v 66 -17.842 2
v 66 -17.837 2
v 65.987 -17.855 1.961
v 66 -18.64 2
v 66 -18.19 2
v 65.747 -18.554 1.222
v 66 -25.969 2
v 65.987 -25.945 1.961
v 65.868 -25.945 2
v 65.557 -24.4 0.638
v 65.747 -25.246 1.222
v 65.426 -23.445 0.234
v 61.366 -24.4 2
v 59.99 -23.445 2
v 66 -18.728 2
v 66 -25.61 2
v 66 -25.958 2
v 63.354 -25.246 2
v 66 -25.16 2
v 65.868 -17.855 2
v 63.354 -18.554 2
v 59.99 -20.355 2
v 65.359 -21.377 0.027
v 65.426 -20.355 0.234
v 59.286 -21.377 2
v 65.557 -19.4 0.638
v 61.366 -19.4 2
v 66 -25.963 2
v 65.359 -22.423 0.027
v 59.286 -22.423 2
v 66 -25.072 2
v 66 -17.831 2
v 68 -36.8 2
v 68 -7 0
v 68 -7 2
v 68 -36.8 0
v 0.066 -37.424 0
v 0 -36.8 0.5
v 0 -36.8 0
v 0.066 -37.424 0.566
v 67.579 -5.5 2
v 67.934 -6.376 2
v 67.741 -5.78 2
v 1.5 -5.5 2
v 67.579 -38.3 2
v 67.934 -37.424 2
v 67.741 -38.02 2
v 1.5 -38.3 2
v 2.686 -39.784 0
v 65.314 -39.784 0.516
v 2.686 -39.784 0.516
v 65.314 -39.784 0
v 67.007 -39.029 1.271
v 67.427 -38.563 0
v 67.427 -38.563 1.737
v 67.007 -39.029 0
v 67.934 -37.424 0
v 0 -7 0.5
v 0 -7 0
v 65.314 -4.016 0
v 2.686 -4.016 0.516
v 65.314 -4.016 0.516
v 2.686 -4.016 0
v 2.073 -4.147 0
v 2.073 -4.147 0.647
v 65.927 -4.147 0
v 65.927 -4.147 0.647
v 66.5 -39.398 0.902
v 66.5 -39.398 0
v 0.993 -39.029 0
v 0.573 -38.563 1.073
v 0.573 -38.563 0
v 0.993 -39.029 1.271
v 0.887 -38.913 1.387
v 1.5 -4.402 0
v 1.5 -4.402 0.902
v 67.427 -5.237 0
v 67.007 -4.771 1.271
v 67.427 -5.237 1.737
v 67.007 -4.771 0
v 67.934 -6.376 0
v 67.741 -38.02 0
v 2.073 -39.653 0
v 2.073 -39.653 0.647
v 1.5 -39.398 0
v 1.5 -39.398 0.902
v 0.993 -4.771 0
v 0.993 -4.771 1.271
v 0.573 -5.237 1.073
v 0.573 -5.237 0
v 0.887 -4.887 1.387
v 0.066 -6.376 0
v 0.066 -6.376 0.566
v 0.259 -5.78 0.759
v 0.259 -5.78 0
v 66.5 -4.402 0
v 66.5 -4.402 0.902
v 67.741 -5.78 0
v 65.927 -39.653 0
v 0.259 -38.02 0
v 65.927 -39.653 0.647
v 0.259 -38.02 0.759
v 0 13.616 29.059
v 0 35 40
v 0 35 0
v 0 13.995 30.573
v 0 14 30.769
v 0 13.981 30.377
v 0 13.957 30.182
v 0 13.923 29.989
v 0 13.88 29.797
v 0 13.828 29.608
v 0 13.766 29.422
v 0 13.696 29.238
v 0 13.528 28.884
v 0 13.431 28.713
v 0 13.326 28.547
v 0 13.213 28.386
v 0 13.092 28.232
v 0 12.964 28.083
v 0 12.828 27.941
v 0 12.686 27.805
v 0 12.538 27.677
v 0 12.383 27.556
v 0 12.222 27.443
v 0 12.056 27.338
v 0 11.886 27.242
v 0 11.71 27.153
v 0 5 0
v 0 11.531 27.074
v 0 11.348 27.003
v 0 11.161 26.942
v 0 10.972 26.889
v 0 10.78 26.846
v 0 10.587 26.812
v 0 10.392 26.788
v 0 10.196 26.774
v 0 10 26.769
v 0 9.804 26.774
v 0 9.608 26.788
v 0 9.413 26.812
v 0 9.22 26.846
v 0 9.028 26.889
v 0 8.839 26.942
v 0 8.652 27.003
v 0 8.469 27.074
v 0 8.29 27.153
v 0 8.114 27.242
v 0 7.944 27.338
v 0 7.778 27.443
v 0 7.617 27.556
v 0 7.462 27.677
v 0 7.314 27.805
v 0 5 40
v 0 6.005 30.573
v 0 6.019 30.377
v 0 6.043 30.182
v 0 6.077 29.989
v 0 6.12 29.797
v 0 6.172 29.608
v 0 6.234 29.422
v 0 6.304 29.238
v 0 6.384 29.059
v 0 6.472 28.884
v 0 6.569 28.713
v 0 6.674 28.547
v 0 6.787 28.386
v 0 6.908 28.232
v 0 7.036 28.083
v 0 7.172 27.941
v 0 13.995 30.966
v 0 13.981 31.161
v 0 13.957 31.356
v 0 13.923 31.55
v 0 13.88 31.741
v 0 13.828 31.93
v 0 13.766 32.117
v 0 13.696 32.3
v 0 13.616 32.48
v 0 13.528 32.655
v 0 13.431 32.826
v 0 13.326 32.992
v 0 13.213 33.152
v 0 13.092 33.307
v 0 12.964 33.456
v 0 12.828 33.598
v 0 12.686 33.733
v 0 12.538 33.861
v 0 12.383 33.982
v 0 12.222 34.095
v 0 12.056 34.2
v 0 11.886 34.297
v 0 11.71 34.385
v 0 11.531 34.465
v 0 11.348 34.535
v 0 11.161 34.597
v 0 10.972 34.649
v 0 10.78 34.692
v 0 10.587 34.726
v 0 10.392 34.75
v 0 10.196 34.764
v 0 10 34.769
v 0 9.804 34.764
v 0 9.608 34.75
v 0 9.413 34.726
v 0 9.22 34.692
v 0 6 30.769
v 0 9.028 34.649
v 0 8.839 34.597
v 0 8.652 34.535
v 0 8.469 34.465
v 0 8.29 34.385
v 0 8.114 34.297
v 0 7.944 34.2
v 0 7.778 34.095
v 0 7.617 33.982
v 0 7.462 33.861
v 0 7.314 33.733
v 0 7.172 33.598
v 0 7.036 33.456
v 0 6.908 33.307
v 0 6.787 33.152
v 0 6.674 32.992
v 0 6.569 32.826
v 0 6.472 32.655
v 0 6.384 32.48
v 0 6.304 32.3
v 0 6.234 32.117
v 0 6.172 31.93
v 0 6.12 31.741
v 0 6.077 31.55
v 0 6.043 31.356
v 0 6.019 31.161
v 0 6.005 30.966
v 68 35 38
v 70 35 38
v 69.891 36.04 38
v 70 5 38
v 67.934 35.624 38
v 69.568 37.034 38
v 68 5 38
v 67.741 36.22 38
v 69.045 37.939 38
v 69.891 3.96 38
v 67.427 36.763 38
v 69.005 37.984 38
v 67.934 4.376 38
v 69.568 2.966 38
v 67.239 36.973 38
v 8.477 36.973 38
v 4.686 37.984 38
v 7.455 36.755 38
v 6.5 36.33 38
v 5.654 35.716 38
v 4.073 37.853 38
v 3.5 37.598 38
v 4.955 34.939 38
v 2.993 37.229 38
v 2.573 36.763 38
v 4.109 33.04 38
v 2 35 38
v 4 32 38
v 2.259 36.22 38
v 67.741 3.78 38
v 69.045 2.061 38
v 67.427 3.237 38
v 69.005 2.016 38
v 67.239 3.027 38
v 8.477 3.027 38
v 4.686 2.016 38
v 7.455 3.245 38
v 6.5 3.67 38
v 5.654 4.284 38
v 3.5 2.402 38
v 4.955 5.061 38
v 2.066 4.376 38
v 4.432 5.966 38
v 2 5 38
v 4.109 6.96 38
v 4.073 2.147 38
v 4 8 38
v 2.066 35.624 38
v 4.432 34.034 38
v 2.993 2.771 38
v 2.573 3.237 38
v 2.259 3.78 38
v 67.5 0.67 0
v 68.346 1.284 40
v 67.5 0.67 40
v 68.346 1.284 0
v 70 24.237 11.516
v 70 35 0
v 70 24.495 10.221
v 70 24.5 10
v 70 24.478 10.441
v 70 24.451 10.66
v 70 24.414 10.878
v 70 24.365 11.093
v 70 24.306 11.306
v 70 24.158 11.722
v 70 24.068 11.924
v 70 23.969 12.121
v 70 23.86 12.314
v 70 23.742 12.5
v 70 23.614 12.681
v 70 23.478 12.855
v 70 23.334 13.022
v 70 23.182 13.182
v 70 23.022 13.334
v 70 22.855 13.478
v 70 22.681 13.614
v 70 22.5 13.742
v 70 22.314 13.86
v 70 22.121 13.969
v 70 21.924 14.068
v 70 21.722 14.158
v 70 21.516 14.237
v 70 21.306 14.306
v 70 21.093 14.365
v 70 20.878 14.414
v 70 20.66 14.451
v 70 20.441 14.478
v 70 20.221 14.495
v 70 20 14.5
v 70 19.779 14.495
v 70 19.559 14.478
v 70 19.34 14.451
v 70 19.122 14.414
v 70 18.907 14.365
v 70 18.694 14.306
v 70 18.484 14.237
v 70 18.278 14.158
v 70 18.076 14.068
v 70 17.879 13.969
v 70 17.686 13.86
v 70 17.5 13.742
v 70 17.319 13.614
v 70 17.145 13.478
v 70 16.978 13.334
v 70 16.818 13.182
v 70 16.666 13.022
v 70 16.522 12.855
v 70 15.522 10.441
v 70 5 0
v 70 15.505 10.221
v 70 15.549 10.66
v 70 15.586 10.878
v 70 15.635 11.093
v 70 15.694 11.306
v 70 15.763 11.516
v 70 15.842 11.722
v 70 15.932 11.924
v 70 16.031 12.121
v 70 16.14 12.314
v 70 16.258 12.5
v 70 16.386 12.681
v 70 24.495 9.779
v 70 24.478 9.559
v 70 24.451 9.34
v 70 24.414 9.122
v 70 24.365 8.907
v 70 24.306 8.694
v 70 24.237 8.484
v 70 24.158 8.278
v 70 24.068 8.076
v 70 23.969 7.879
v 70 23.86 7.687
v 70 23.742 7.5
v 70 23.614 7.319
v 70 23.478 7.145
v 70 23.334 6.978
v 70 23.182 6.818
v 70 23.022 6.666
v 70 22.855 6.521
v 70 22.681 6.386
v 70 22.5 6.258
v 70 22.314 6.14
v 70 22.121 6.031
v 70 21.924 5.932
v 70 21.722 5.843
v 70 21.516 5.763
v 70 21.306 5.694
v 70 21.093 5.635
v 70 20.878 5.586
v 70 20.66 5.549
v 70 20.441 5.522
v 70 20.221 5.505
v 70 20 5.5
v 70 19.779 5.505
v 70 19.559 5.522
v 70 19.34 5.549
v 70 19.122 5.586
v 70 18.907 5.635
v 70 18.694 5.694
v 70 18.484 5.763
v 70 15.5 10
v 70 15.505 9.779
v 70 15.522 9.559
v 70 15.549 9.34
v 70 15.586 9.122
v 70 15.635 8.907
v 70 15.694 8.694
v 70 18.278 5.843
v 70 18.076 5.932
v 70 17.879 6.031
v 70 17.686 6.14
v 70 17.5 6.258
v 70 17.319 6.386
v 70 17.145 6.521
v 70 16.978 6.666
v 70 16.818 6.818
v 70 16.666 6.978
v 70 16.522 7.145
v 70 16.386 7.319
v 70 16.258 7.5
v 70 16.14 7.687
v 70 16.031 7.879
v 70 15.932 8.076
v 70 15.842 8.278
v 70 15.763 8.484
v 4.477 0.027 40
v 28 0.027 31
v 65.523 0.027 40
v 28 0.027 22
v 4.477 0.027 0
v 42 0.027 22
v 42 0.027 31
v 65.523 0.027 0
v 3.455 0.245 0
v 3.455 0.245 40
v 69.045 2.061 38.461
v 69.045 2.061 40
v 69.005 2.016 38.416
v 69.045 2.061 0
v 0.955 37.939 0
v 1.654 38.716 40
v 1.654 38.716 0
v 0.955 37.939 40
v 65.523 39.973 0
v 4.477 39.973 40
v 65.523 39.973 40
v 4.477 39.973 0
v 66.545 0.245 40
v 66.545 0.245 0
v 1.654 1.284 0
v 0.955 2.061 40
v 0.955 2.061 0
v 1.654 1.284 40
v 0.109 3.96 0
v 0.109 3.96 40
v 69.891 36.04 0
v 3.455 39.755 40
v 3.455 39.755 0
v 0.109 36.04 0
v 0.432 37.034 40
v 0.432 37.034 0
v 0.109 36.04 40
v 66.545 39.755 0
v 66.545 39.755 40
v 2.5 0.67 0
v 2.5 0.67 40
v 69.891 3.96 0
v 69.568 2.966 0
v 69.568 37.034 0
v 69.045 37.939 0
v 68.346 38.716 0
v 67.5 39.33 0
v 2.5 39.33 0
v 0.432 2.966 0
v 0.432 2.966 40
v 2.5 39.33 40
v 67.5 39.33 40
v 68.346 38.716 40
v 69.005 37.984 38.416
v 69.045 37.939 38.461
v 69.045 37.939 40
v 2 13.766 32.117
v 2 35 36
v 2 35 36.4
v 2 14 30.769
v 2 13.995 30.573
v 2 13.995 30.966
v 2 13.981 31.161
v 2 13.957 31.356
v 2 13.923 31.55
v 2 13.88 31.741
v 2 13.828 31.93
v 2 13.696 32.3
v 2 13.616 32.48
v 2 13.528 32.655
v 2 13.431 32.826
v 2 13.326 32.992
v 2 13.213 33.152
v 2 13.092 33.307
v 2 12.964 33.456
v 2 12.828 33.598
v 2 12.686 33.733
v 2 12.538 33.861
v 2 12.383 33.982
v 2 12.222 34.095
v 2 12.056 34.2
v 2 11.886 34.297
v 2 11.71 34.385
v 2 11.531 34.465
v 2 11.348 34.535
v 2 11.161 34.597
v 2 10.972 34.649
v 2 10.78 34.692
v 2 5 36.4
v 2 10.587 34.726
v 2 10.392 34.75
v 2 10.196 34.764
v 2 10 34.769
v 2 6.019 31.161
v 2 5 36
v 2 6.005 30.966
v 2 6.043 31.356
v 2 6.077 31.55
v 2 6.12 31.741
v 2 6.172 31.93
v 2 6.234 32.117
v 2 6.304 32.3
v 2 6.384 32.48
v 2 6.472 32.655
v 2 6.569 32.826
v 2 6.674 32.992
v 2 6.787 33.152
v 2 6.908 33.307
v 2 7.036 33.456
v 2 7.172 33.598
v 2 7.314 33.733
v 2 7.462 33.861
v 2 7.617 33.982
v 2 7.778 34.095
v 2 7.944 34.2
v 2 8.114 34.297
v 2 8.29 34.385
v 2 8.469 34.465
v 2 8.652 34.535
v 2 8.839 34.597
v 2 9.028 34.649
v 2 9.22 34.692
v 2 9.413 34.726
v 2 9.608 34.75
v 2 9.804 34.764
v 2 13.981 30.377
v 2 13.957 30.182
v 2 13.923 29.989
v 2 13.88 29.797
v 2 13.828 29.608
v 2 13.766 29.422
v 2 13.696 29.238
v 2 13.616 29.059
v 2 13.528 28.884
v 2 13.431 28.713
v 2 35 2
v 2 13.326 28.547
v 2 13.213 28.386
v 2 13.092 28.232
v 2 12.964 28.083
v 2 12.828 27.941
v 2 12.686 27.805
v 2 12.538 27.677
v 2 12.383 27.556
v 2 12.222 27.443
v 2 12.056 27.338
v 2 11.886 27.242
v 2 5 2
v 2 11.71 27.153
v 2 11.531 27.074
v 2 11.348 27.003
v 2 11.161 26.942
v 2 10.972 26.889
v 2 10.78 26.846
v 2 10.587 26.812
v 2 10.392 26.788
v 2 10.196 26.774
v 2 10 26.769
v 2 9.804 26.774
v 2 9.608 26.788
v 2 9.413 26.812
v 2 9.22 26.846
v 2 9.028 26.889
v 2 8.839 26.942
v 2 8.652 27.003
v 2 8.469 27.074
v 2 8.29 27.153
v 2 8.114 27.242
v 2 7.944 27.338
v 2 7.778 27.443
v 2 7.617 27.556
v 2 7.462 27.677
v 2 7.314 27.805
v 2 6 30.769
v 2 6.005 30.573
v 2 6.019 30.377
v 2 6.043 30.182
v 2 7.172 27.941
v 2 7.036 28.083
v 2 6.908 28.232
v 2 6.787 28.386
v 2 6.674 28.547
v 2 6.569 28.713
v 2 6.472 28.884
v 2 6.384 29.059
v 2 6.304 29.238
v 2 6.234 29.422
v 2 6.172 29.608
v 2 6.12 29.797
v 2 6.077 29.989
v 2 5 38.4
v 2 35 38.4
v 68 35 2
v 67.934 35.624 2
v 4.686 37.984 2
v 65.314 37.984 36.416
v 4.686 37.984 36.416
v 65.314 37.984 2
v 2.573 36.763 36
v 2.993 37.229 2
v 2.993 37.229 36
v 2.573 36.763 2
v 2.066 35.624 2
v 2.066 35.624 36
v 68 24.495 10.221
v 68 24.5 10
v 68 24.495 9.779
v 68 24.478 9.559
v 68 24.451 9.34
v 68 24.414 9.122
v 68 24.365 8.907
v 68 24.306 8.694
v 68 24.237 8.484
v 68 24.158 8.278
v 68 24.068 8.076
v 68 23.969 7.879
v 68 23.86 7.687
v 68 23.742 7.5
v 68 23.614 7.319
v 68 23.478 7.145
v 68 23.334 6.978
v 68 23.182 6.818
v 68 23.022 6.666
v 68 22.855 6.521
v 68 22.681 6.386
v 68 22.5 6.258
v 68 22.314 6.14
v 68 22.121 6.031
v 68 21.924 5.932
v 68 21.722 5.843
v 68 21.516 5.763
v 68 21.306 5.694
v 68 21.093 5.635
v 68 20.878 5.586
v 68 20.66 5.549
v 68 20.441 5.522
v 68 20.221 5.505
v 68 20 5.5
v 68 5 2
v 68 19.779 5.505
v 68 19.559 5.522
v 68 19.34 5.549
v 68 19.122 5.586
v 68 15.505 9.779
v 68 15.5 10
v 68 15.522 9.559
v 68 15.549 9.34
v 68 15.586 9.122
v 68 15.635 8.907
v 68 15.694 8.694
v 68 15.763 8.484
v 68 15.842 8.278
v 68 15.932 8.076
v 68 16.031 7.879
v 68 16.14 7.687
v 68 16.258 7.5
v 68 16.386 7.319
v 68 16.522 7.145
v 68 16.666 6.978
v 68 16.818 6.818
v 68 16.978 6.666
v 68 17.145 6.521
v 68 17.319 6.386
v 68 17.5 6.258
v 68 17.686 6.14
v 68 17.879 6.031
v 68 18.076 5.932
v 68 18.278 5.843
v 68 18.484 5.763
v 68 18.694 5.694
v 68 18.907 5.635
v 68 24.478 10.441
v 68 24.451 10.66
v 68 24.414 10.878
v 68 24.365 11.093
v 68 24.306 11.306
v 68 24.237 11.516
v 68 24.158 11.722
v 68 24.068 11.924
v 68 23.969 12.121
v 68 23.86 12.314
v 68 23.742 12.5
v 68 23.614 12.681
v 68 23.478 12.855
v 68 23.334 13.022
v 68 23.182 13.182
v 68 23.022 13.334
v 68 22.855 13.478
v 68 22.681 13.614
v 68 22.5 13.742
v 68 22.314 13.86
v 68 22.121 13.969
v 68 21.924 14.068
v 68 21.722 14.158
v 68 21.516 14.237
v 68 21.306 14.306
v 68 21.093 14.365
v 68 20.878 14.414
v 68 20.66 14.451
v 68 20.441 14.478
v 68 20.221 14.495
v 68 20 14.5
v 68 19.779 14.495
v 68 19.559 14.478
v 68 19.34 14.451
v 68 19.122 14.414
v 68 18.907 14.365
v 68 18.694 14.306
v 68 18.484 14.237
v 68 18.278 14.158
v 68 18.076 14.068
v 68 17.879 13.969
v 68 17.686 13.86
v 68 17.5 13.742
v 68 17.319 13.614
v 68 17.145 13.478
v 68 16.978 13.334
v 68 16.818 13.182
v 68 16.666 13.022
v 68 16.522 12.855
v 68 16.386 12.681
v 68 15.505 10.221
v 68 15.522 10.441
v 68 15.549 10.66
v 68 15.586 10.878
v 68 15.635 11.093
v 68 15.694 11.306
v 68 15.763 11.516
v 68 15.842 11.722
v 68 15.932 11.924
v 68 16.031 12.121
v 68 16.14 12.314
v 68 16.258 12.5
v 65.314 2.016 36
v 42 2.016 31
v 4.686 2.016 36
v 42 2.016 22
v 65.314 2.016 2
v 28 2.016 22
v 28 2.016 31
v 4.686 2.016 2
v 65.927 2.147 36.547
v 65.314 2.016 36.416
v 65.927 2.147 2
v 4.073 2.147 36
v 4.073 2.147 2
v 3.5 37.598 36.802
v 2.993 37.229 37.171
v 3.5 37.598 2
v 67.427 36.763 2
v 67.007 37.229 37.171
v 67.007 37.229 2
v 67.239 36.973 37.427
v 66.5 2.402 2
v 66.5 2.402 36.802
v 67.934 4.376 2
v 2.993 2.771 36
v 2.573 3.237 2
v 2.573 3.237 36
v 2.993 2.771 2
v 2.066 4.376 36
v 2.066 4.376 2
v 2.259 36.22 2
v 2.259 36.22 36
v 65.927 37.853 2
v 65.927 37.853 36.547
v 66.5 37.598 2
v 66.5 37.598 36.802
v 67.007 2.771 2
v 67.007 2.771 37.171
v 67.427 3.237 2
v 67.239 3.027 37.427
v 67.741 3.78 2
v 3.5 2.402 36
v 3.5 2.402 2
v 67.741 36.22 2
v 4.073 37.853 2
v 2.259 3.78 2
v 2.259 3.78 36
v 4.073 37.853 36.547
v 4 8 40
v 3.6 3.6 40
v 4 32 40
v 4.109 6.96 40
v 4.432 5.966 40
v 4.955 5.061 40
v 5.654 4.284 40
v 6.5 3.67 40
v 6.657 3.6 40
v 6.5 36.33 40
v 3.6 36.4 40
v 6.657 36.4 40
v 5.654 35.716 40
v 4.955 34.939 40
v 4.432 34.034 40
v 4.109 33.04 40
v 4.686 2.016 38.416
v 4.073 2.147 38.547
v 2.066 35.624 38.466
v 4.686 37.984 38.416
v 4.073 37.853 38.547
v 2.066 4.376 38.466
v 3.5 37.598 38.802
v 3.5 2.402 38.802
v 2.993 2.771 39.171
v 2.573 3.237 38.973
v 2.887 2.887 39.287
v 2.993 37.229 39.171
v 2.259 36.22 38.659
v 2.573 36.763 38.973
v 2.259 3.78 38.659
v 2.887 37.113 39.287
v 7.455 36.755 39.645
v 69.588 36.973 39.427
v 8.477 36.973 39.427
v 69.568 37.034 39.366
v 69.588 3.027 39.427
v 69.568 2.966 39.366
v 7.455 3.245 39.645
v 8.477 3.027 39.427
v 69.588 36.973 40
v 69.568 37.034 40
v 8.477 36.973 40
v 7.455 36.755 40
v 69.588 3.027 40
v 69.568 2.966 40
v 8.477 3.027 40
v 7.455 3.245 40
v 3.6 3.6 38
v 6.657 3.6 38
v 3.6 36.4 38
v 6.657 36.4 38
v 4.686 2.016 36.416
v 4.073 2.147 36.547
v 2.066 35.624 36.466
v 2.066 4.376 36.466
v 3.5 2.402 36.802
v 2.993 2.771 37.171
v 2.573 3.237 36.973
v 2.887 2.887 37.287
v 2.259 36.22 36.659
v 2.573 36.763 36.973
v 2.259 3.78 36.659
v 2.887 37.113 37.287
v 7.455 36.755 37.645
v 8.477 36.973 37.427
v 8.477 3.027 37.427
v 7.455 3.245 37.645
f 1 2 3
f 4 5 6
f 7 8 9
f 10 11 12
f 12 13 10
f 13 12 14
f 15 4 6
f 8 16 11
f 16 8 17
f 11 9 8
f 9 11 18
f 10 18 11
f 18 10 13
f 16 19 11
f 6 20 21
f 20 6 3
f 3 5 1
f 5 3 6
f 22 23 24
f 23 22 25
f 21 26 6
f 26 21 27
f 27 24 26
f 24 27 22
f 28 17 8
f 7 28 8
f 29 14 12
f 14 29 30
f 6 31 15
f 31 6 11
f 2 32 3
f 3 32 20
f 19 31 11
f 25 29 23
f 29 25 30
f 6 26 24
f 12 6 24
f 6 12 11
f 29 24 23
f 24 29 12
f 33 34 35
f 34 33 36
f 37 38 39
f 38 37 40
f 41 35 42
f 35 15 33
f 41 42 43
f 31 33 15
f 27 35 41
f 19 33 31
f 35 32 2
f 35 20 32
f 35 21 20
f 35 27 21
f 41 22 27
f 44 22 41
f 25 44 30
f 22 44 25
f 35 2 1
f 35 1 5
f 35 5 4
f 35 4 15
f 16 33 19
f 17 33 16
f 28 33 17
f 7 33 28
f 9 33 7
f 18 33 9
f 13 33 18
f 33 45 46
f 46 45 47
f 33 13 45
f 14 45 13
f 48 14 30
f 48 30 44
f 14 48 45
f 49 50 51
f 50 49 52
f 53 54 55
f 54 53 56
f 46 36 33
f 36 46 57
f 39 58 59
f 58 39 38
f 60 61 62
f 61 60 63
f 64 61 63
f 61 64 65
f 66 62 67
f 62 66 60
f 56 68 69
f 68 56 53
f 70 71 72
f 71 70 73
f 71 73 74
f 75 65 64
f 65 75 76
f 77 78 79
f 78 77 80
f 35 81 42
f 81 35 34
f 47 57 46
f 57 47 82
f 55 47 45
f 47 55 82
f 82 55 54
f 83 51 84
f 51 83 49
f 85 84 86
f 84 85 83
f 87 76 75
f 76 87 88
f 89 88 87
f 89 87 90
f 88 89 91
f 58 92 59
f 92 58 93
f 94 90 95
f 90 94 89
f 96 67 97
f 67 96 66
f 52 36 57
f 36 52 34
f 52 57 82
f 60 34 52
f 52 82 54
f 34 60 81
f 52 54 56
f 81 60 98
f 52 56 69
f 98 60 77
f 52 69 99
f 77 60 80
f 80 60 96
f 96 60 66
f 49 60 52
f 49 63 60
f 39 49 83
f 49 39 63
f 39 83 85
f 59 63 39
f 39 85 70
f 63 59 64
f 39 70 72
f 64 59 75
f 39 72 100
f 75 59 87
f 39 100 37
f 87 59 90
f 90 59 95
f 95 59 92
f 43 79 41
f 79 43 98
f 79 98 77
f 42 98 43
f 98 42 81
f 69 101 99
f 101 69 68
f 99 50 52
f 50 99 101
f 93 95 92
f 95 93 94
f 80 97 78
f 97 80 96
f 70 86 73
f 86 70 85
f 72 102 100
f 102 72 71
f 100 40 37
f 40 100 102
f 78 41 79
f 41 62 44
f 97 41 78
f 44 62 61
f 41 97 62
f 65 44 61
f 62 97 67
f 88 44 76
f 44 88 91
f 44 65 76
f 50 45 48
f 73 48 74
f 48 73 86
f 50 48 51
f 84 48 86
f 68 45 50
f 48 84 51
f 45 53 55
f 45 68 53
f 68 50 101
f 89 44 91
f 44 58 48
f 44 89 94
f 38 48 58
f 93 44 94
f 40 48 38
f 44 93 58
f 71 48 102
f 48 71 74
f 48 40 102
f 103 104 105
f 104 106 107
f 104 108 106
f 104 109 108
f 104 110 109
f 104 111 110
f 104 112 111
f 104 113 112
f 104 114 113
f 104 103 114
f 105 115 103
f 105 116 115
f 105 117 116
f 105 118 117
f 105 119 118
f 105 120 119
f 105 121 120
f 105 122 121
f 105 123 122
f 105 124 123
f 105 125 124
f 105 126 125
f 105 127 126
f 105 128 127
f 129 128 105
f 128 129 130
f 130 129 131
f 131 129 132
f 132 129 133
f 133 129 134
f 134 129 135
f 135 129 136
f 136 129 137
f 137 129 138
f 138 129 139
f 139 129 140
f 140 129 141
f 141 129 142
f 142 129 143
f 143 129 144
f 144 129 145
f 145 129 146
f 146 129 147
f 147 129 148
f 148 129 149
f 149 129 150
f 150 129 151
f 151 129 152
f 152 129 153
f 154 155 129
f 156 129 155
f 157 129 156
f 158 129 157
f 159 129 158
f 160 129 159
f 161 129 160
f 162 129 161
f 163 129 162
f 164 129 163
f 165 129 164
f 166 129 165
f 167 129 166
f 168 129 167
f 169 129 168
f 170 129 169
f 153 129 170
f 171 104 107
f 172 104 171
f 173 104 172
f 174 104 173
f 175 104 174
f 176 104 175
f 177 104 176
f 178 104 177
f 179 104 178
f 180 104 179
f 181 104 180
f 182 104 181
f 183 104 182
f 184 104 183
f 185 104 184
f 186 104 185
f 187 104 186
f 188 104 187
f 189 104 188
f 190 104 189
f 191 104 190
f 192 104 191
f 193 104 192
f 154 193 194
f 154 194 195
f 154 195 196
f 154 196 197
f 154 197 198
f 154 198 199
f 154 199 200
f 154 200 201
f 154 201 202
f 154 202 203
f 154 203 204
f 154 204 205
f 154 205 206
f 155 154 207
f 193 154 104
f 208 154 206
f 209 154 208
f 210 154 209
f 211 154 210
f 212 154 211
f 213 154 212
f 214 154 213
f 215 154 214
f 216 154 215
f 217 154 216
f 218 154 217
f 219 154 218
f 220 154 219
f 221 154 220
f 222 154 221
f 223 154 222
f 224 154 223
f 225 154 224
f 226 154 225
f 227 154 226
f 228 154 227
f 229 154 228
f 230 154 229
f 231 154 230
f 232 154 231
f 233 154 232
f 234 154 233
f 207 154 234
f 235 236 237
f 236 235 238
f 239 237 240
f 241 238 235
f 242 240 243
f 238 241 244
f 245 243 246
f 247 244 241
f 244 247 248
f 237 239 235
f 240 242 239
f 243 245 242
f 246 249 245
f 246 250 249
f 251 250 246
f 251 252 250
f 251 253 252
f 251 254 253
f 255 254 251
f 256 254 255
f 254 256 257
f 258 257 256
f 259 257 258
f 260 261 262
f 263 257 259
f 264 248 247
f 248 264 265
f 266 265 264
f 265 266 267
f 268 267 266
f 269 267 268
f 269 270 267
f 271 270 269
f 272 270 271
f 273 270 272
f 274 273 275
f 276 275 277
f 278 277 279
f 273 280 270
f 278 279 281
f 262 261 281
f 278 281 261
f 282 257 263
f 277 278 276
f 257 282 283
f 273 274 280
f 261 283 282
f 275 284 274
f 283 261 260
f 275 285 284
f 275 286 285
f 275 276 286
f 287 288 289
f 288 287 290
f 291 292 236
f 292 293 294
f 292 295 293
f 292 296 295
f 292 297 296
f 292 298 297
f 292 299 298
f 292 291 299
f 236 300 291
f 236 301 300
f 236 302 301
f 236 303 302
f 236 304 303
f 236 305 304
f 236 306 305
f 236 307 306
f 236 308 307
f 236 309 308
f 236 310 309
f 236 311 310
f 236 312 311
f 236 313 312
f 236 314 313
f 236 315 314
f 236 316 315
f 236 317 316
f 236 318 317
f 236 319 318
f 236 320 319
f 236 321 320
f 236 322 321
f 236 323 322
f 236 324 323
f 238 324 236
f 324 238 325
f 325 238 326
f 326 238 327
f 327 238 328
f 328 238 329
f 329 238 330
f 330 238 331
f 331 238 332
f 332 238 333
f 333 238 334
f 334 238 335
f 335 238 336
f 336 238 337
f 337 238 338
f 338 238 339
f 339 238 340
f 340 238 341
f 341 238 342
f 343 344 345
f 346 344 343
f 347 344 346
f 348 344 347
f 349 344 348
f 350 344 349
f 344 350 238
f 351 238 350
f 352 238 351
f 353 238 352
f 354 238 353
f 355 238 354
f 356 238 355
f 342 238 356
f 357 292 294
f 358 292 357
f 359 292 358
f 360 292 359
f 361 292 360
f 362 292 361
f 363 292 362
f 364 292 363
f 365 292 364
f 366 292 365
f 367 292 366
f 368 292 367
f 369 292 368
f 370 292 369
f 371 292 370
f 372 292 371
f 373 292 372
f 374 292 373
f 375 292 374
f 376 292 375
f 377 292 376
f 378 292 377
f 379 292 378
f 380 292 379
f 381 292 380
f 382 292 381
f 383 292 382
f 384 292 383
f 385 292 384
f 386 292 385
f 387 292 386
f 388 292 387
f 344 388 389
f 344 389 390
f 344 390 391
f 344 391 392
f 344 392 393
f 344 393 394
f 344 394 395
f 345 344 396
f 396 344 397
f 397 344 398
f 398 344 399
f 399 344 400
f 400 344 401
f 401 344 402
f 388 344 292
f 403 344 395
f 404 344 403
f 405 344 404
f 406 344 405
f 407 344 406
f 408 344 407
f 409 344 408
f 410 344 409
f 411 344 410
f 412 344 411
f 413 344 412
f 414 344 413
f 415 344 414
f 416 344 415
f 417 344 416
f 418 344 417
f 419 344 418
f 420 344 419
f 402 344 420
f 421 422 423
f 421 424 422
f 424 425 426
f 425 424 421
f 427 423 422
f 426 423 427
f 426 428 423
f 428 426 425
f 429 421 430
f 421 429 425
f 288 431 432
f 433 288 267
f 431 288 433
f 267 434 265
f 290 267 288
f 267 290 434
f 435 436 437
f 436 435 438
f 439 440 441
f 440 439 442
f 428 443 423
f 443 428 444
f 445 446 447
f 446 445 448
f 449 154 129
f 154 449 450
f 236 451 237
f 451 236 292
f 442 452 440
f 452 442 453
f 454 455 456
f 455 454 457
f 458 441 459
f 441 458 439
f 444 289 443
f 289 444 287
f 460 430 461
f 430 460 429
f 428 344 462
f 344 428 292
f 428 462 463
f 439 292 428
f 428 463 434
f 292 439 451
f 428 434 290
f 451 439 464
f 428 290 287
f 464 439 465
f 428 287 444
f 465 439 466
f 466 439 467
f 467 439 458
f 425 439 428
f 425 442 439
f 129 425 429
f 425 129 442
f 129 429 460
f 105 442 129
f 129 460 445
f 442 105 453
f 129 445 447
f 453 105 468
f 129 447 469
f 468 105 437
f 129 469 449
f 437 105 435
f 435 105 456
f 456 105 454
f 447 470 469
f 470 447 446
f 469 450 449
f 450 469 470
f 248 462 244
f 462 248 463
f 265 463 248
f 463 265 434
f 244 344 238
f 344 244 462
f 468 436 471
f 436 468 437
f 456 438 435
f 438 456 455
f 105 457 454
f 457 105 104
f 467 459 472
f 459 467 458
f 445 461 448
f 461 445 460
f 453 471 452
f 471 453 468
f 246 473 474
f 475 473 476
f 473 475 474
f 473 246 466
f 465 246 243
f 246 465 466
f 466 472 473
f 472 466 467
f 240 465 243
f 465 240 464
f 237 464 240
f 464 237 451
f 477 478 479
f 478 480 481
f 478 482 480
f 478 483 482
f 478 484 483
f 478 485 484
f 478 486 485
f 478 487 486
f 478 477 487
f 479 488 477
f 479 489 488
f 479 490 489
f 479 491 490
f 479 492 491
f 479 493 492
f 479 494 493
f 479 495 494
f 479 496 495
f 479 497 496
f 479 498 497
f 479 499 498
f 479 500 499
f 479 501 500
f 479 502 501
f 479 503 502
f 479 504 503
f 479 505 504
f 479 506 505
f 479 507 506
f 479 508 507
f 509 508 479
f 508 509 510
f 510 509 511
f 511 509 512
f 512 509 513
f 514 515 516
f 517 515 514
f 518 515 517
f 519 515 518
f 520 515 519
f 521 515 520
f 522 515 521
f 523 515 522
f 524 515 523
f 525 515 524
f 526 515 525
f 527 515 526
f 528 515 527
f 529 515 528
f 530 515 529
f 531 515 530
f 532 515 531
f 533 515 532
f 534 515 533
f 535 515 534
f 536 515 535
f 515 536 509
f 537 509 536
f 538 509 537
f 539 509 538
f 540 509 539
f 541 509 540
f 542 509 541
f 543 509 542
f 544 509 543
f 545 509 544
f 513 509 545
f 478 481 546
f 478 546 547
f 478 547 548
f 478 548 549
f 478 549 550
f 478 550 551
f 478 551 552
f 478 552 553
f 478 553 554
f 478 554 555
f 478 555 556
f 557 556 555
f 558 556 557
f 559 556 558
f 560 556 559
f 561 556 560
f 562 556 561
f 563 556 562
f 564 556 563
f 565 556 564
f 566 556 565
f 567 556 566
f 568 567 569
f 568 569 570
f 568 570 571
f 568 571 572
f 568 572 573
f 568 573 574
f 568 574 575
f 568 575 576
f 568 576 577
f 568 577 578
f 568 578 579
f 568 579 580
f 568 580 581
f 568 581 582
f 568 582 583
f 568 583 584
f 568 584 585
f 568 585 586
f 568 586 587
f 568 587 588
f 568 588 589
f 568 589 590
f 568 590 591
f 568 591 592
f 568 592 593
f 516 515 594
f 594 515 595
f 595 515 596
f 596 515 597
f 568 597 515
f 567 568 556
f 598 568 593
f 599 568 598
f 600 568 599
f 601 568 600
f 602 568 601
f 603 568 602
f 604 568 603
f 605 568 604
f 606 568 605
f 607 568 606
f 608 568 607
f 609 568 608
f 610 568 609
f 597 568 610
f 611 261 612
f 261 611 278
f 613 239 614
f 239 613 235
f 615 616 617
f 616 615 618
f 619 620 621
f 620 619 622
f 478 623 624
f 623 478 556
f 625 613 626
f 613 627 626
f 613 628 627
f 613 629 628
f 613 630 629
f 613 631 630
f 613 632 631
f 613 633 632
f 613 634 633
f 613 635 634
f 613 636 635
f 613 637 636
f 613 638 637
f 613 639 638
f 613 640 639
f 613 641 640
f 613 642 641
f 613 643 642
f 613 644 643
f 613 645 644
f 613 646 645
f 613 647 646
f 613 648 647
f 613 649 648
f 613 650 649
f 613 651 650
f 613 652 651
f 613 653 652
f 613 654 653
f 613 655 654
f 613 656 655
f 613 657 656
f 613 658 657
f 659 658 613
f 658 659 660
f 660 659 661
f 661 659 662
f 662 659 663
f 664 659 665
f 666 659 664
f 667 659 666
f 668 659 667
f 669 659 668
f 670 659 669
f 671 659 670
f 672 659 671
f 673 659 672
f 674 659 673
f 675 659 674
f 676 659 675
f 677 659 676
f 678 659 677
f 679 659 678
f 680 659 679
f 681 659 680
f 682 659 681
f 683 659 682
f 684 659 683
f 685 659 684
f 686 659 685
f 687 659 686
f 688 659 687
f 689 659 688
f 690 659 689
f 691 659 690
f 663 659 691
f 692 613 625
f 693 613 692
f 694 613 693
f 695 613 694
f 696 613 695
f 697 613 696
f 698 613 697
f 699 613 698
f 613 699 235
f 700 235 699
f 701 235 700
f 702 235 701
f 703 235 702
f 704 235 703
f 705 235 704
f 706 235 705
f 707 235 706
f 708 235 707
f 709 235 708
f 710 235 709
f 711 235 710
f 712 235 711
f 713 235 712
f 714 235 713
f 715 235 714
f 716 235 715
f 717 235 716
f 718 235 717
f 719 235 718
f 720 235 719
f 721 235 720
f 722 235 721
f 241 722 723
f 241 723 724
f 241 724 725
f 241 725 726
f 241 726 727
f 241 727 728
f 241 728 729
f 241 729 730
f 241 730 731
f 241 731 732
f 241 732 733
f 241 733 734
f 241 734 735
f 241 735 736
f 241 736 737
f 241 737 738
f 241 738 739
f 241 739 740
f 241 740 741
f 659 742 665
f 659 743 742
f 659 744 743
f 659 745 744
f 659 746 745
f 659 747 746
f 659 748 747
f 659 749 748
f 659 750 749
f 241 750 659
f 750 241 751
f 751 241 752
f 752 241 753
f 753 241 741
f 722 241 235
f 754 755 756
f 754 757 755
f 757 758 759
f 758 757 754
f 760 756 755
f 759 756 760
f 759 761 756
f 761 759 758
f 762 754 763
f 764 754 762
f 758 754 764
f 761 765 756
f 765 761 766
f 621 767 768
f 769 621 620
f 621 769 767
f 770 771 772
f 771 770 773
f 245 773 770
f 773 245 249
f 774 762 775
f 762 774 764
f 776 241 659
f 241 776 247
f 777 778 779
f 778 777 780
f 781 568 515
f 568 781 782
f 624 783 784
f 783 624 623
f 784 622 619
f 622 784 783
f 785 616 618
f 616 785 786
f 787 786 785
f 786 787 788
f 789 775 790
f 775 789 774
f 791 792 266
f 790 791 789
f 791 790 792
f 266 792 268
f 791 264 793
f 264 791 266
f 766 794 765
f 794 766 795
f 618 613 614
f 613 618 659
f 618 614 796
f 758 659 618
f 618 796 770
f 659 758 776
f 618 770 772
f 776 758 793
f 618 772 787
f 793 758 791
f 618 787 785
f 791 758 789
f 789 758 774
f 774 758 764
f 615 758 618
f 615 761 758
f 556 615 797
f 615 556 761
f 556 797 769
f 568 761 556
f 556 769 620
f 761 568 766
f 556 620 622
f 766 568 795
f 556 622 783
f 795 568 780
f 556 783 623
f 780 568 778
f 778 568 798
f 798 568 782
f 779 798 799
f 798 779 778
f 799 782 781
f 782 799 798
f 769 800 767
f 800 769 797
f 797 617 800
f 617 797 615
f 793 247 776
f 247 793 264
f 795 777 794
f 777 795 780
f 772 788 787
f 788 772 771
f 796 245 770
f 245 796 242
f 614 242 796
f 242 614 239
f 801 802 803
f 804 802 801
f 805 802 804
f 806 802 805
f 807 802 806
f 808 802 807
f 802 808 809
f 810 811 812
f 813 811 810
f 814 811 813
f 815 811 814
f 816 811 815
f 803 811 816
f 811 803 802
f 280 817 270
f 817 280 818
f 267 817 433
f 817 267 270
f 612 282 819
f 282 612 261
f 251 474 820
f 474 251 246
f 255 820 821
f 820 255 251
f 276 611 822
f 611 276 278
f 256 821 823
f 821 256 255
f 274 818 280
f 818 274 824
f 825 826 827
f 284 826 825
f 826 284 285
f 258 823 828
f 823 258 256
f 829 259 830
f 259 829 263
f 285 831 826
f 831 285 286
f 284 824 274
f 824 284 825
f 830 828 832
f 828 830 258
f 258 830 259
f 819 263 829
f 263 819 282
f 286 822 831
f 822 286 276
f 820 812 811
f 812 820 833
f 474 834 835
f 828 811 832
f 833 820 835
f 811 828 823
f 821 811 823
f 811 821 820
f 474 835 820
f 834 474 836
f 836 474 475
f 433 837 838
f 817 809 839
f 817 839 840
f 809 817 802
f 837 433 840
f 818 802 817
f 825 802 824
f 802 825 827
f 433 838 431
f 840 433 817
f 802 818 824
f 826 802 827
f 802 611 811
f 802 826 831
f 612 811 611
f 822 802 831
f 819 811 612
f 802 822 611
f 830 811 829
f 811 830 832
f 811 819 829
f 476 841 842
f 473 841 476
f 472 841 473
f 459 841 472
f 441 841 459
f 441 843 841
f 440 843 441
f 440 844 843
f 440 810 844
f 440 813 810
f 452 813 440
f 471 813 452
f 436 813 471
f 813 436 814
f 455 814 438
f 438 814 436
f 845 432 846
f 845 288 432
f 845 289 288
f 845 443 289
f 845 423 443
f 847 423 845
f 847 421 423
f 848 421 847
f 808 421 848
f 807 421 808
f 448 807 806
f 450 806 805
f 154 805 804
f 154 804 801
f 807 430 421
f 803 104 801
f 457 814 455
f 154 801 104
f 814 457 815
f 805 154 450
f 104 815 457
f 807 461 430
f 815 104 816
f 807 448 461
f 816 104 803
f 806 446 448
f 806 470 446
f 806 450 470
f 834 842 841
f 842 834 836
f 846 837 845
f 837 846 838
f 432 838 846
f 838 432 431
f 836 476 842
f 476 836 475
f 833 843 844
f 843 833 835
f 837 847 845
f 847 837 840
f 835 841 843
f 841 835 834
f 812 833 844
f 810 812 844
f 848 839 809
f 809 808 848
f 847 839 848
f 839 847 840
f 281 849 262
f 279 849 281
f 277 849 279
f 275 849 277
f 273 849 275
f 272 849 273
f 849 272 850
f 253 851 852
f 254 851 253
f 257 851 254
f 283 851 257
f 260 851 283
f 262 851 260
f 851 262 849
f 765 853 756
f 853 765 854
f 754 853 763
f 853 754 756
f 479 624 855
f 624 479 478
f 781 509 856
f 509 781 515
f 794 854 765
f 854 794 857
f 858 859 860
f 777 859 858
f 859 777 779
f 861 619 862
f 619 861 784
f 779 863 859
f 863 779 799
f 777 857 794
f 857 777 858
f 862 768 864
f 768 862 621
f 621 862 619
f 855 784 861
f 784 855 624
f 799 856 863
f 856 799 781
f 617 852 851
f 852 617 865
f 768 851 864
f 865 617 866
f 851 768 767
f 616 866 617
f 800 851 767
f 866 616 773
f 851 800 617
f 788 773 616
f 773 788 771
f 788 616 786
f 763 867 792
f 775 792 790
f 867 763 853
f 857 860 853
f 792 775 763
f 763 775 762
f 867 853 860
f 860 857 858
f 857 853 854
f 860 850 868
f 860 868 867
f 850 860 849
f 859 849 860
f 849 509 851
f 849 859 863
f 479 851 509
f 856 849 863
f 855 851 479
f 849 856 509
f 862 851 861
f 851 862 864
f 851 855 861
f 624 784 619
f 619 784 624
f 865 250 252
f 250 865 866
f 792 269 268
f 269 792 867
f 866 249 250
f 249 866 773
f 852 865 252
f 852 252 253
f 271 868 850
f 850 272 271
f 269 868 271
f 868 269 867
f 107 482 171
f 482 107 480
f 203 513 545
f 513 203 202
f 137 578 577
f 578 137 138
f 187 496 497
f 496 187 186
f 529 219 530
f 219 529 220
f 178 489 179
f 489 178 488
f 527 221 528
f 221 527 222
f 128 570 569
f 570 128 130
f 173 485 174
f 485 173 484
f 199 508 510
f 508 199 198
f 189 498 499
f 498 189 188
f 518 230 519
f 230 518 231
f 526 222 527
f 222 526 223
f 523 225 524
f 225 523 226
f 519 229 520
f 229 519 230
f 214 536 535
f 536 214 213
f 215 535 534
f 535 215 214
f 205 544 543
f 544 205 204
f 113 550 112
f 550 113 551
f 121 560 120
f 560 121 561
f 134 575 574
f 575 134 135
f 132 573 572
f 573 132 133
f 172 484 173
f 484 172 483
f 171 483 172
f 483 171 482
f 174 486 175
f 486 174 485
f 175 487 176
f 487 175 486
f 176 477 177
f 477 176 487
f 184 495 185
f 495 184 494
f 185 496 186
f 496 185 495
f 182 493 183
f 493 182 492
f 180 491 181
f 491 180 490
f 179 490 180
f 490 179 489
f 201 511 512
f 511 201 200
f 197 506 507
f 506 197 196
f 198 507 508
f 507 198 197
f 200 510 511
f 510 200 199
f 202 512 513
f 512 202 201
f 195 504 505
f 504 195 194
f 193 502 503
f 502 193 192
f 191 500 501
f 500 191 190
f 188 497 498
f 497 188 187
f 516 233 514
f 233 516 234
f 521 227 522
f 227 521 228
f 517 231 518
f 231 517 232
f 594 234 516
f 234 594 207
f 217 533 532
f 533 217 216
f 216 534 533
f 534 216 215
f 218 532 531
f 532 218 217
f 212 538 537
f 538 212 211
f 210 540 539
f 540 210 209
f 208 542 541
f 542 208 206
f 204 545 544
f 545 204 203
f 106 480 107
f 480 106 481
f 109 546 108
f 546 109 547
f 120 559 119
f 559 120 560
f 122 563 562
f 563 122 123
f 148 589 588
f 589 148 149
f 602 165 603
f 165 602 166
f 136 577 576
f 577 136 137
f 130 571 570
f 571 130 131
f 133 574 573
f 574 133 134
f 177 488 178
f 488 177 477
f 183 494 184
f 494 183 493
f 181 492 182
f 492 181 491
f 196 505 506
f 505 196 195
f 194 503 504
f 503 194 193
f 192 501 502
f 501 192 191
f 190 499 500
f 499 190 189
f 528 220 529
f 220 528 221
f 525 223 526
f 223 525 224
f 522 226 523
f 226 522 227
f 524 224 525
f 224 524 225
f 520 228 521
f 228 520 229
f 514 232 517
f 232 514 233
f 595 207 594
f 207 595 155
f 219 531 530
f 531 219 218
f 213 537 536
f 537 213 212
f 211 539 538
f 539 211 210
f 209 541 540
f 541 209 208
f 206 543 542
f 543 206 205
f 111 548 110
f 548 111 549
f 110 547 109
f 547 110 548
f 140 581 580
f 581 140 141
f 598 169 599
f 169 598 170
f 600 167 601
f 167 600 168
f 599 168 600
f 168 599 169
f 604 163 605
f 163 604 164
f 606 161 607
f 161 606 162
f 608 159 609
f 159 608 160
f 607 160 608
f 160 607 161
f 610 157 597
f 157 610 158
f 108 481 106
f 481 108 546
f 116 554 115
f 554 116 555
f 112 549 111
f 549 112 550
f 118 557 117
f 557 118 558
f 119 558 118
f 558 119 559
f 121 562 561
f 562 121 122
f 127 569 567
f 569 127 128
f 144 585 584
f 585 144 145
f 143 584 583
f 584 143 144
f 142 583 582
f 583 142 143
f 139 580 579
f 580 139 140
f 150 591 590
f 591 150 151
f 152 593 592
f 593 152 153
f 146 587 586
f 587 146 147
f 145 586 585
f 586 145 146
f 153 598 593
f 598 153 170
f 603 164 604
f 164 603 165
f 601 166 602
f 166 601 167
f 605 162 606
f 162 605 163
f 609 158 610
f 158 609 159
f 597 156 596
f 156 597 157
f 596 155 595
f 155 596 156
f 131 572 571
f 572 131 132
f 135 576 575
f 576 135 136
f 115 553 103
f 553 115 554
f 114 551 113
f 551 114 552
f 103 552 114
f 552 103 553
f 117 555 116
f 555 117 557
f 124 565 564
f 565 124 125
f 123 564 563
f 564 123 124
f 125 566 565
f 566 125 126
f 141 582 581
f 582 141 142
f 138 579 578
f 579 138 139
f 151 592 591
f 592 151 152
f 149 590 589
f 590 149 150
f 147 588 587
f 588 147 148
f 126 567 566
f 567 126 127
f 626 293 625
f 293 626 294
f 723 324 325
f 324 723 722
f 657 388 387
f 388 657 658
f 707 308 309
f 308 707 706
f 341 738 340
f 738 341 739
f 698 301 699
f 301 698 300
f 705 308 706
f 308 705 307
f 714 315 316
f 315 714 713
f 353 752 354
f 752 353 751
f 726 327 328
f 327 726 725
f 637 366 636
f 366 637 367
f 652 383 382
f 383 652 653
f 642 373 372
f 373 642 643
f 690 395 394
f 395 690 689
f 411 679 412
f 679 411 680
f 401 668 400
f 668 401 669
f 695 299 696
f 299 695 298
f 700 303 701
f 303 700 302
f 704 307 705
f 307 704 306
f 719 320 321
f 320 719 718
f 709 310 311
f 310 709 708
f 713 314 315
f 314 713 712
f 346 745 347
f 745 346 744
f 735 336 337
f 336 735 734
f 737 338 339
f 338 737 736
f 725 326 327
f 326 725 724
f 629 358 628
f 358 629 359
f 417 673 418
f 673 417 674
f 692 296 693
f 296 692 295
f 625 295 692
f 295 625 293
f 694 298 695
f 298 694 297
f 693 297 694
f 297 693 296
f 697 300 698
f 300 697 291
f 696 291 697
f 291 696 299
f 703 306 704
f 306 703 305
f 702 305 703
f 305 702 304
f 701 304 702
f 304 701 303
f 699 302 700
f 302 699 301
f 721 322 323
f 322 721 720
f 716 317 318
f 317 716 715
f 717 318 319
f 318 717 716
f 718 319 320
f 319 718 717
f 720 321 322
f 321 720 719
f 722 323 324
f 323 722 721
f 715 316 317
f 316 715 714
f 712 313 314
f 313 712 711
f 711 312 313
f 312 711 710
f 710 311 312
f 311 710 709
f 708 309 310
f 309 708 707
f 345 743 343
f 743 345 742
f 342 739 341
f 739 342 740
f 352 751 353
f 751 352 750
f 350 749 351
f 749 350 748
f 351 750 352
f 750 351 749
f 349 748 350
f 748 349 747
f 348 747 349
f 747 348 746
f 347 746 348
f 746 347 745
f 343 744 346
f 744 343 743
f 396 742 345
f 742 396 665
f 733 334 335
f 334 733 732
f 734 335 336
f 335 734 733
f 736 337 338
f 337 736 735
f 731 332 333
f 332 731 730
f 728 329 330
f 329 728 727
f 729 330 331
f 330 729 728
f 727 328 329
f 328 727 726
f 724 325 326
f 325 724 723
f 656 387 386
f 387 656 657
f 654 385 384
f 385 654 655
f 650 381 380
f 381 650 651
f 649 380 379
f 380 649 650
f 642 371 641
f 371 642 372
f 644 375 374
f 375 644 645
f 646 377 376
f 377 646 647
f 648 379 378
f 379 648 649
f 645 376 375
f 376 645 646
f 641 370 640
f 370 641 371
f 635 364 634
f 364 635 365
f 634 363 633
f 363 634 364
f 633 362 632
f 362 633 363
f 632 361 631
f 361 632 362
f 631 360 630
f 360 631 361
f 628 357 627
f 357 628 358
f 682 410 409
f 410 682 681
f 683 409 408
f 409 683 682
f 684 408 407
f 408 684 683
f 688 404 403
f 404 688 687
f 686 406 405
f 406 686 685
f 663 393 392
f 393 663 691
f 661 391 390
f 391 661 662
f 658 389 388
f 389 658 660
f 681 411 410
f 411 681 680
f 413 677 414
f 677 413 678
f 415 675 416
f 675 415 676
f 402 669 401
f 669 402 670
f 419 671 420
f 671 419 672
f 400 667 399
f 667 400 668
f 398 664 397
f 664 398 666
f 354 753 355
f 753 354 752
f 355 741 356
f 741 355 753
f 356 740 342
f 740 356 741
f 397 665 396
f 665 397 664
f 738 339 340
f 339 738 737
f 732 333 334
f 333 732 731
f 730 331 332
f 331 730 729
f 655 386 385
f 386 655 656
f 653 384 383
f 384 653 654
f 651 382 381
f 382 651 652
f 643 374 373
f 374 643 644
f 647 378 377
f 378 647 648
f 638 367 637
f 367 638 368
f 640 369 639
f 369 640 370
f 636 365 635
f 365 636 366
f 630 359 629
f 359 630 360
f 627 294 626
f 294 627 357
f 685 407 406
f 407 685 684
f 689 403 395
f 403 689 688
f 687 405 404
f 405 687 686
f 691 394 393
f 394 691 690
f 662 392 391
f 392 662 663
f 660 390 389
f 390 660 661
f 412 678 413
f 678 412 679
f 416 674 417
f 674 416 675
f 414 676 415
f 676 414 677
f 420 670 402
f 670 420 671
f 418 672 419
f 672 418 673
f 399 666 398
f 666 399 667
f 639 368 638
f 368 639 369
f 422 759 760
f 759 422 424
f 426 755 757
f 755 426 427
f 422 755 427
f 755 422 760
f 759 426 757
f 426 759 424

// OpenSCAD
itemsShown="both"; // [both,box,lid]
boxLength=70;
boxWidth=40;
boxHeight=40;
cornerRadius=5;
wallThickness=2;
bottomThickness=2;
lidThickness=2;
lidClearance=0.2;
lidEdgeThickness=0.5;
dLoch = 8;
dLochStrom = 9;
dLochKabel = 4;
dLochPoti  = 9;
switchL = 14;
switchH = 9;
// Notch in the lid
withNotch=true;
$fn = 128;

showLid();
showBoxAll();

module showBoxAll() {
    difference() 
    {
        showBox();
        rotate([90,0,90]){

            translate([boxWidth/4,boxHeight/1.3,-0.5])
                cylinder(10+1,dLoch/2,dLoch/2);

            translate([boxWidth/2,10,boxLength-0.5-wallThickness])
                cylinder(10+1,dLochStrom/2,dLochStrom/2);
            
        }
        //seite
        rotate([90,0,0])
            translate([(boxLength-switchL)/2,boxHeight-2*switchH,-.5-wallThickness])
                cube([switchL,switchH,wallThickness+1]);
    }
}
module showLid(){
	translate ([0, -2*wallThickness, 0]) 
	roundBoxLid(l=boxLength-wallThickness,
				w=boxWidth-2*wallThickness-lidClearance,
				h=lidThickness,
				et=lidEdgeThickness,
				r=cornerRadius-wallThickness,
				notch=withNotch);
}

module showBox(){
	round_box(l=boxLength,
			  w=boxWidth,
			  h=boxHeight,
			  bt=bottomThickness,
			  wt=wallThickness,
			  lt=lidThickness,
			  r=cornerRadius);
}

module round_box(l=40,w=30,h=30,bt=2,wt=2,lt=2,r=5,){
	difference() { 
		round_cube(l=l,w=w,h=h-lt,r=r);
		translate ([wt, wt, bt]) 
		round_cube(l=l-wt*2,w=w-wt*2,h=h,r=r-wt);
	}
	roundBoxRim();
	translate ([0, 0, -wt]) roundBoxRim();
}

module roundBoxRim(l=boxLength,
				   w=boxWidth,
				   h=boxHeight,
				   et=lidEdgeThickness,
				   r=cornerRadius,
				   wt=wallThickness,
				   lt=lidThickness){
	difference() { 
		translate ([0, 0, h-lt]) 
		round_cube(l=l,w=w,h=lt,r=r);
		translate ([wt+lt,wt+lt-et*2,h-lt-0.1]) 
		round_cube(l=l*2,w=w-2*(wt+lt)+4*et,h=lt+0.2,r=r-wt+lt);

		//subtract out a lid to make the ledge
		translate ([wt, w-wt, h-lt-0.1])
		roundBoxLid(l=l*2,w=w-2*wt,h=lt+0.1,wt=wt,t=lt,et=0.5,r=r-wt,notch=false);
	}
}

module roundBoxLid(l=40,w=30,h=3,wt=2,t=2,et=0.5,r=5,notch=true){
	translate ([l, 0, 0]) 
	rotate (a = [0, 0, 180]) 
	difference(){
		round_cube(l=l,w=w,h=h,t=t,r=r);

		translate ([-1, 0, et]) rotate (a = [45, 0, 0])  cube (size = [l+2, h*2, h*2]); 
		translate ([-1, w, et]) rotate (a = [45, 0, 0])  cube (size = [l+2, h*2, h*2]); 
		translate ([l, -1, et]) rotate (a = [45, 0, 90]) cube (size = [w+2, h*2, h*2]); 
		if (notch==true){
			translate([2,w/2,h+0.001]) thumbNotch(10/2,72,t);
		}
	}
}

module thumbNotch(
	thumbR=12/2,
	angle=72,
	notchHeight=2){

	size=10*thumbR;

	rotate([0,0,90])
	difference(){
		translate([0,
					(thumbR*sin(angle)-notchHeight)/tan(angle),
					 thumbR*sin(angle)-notchHeight])
		rotate([angle,0,0])
		cylinder(r=thumbR,h=size,$fn=30);

		translate([-size,-size,0])
		cube(size*2);
	}
}

module round_cube(l=40,w=30,h=20,r=5,t=0,$fn=30){
	hull(){ 
		translate ([r, r, 0]) cylinder (h = h, r=r);
		translate ([r, w-r, 0]) cylinder (h = h, r=r);
		translate ([l-r,w-r, 0]) cylinder (h = h, r=r);
		translate ([l-r, r, 0]) cylinder (h = h, r=r);
	}
}
